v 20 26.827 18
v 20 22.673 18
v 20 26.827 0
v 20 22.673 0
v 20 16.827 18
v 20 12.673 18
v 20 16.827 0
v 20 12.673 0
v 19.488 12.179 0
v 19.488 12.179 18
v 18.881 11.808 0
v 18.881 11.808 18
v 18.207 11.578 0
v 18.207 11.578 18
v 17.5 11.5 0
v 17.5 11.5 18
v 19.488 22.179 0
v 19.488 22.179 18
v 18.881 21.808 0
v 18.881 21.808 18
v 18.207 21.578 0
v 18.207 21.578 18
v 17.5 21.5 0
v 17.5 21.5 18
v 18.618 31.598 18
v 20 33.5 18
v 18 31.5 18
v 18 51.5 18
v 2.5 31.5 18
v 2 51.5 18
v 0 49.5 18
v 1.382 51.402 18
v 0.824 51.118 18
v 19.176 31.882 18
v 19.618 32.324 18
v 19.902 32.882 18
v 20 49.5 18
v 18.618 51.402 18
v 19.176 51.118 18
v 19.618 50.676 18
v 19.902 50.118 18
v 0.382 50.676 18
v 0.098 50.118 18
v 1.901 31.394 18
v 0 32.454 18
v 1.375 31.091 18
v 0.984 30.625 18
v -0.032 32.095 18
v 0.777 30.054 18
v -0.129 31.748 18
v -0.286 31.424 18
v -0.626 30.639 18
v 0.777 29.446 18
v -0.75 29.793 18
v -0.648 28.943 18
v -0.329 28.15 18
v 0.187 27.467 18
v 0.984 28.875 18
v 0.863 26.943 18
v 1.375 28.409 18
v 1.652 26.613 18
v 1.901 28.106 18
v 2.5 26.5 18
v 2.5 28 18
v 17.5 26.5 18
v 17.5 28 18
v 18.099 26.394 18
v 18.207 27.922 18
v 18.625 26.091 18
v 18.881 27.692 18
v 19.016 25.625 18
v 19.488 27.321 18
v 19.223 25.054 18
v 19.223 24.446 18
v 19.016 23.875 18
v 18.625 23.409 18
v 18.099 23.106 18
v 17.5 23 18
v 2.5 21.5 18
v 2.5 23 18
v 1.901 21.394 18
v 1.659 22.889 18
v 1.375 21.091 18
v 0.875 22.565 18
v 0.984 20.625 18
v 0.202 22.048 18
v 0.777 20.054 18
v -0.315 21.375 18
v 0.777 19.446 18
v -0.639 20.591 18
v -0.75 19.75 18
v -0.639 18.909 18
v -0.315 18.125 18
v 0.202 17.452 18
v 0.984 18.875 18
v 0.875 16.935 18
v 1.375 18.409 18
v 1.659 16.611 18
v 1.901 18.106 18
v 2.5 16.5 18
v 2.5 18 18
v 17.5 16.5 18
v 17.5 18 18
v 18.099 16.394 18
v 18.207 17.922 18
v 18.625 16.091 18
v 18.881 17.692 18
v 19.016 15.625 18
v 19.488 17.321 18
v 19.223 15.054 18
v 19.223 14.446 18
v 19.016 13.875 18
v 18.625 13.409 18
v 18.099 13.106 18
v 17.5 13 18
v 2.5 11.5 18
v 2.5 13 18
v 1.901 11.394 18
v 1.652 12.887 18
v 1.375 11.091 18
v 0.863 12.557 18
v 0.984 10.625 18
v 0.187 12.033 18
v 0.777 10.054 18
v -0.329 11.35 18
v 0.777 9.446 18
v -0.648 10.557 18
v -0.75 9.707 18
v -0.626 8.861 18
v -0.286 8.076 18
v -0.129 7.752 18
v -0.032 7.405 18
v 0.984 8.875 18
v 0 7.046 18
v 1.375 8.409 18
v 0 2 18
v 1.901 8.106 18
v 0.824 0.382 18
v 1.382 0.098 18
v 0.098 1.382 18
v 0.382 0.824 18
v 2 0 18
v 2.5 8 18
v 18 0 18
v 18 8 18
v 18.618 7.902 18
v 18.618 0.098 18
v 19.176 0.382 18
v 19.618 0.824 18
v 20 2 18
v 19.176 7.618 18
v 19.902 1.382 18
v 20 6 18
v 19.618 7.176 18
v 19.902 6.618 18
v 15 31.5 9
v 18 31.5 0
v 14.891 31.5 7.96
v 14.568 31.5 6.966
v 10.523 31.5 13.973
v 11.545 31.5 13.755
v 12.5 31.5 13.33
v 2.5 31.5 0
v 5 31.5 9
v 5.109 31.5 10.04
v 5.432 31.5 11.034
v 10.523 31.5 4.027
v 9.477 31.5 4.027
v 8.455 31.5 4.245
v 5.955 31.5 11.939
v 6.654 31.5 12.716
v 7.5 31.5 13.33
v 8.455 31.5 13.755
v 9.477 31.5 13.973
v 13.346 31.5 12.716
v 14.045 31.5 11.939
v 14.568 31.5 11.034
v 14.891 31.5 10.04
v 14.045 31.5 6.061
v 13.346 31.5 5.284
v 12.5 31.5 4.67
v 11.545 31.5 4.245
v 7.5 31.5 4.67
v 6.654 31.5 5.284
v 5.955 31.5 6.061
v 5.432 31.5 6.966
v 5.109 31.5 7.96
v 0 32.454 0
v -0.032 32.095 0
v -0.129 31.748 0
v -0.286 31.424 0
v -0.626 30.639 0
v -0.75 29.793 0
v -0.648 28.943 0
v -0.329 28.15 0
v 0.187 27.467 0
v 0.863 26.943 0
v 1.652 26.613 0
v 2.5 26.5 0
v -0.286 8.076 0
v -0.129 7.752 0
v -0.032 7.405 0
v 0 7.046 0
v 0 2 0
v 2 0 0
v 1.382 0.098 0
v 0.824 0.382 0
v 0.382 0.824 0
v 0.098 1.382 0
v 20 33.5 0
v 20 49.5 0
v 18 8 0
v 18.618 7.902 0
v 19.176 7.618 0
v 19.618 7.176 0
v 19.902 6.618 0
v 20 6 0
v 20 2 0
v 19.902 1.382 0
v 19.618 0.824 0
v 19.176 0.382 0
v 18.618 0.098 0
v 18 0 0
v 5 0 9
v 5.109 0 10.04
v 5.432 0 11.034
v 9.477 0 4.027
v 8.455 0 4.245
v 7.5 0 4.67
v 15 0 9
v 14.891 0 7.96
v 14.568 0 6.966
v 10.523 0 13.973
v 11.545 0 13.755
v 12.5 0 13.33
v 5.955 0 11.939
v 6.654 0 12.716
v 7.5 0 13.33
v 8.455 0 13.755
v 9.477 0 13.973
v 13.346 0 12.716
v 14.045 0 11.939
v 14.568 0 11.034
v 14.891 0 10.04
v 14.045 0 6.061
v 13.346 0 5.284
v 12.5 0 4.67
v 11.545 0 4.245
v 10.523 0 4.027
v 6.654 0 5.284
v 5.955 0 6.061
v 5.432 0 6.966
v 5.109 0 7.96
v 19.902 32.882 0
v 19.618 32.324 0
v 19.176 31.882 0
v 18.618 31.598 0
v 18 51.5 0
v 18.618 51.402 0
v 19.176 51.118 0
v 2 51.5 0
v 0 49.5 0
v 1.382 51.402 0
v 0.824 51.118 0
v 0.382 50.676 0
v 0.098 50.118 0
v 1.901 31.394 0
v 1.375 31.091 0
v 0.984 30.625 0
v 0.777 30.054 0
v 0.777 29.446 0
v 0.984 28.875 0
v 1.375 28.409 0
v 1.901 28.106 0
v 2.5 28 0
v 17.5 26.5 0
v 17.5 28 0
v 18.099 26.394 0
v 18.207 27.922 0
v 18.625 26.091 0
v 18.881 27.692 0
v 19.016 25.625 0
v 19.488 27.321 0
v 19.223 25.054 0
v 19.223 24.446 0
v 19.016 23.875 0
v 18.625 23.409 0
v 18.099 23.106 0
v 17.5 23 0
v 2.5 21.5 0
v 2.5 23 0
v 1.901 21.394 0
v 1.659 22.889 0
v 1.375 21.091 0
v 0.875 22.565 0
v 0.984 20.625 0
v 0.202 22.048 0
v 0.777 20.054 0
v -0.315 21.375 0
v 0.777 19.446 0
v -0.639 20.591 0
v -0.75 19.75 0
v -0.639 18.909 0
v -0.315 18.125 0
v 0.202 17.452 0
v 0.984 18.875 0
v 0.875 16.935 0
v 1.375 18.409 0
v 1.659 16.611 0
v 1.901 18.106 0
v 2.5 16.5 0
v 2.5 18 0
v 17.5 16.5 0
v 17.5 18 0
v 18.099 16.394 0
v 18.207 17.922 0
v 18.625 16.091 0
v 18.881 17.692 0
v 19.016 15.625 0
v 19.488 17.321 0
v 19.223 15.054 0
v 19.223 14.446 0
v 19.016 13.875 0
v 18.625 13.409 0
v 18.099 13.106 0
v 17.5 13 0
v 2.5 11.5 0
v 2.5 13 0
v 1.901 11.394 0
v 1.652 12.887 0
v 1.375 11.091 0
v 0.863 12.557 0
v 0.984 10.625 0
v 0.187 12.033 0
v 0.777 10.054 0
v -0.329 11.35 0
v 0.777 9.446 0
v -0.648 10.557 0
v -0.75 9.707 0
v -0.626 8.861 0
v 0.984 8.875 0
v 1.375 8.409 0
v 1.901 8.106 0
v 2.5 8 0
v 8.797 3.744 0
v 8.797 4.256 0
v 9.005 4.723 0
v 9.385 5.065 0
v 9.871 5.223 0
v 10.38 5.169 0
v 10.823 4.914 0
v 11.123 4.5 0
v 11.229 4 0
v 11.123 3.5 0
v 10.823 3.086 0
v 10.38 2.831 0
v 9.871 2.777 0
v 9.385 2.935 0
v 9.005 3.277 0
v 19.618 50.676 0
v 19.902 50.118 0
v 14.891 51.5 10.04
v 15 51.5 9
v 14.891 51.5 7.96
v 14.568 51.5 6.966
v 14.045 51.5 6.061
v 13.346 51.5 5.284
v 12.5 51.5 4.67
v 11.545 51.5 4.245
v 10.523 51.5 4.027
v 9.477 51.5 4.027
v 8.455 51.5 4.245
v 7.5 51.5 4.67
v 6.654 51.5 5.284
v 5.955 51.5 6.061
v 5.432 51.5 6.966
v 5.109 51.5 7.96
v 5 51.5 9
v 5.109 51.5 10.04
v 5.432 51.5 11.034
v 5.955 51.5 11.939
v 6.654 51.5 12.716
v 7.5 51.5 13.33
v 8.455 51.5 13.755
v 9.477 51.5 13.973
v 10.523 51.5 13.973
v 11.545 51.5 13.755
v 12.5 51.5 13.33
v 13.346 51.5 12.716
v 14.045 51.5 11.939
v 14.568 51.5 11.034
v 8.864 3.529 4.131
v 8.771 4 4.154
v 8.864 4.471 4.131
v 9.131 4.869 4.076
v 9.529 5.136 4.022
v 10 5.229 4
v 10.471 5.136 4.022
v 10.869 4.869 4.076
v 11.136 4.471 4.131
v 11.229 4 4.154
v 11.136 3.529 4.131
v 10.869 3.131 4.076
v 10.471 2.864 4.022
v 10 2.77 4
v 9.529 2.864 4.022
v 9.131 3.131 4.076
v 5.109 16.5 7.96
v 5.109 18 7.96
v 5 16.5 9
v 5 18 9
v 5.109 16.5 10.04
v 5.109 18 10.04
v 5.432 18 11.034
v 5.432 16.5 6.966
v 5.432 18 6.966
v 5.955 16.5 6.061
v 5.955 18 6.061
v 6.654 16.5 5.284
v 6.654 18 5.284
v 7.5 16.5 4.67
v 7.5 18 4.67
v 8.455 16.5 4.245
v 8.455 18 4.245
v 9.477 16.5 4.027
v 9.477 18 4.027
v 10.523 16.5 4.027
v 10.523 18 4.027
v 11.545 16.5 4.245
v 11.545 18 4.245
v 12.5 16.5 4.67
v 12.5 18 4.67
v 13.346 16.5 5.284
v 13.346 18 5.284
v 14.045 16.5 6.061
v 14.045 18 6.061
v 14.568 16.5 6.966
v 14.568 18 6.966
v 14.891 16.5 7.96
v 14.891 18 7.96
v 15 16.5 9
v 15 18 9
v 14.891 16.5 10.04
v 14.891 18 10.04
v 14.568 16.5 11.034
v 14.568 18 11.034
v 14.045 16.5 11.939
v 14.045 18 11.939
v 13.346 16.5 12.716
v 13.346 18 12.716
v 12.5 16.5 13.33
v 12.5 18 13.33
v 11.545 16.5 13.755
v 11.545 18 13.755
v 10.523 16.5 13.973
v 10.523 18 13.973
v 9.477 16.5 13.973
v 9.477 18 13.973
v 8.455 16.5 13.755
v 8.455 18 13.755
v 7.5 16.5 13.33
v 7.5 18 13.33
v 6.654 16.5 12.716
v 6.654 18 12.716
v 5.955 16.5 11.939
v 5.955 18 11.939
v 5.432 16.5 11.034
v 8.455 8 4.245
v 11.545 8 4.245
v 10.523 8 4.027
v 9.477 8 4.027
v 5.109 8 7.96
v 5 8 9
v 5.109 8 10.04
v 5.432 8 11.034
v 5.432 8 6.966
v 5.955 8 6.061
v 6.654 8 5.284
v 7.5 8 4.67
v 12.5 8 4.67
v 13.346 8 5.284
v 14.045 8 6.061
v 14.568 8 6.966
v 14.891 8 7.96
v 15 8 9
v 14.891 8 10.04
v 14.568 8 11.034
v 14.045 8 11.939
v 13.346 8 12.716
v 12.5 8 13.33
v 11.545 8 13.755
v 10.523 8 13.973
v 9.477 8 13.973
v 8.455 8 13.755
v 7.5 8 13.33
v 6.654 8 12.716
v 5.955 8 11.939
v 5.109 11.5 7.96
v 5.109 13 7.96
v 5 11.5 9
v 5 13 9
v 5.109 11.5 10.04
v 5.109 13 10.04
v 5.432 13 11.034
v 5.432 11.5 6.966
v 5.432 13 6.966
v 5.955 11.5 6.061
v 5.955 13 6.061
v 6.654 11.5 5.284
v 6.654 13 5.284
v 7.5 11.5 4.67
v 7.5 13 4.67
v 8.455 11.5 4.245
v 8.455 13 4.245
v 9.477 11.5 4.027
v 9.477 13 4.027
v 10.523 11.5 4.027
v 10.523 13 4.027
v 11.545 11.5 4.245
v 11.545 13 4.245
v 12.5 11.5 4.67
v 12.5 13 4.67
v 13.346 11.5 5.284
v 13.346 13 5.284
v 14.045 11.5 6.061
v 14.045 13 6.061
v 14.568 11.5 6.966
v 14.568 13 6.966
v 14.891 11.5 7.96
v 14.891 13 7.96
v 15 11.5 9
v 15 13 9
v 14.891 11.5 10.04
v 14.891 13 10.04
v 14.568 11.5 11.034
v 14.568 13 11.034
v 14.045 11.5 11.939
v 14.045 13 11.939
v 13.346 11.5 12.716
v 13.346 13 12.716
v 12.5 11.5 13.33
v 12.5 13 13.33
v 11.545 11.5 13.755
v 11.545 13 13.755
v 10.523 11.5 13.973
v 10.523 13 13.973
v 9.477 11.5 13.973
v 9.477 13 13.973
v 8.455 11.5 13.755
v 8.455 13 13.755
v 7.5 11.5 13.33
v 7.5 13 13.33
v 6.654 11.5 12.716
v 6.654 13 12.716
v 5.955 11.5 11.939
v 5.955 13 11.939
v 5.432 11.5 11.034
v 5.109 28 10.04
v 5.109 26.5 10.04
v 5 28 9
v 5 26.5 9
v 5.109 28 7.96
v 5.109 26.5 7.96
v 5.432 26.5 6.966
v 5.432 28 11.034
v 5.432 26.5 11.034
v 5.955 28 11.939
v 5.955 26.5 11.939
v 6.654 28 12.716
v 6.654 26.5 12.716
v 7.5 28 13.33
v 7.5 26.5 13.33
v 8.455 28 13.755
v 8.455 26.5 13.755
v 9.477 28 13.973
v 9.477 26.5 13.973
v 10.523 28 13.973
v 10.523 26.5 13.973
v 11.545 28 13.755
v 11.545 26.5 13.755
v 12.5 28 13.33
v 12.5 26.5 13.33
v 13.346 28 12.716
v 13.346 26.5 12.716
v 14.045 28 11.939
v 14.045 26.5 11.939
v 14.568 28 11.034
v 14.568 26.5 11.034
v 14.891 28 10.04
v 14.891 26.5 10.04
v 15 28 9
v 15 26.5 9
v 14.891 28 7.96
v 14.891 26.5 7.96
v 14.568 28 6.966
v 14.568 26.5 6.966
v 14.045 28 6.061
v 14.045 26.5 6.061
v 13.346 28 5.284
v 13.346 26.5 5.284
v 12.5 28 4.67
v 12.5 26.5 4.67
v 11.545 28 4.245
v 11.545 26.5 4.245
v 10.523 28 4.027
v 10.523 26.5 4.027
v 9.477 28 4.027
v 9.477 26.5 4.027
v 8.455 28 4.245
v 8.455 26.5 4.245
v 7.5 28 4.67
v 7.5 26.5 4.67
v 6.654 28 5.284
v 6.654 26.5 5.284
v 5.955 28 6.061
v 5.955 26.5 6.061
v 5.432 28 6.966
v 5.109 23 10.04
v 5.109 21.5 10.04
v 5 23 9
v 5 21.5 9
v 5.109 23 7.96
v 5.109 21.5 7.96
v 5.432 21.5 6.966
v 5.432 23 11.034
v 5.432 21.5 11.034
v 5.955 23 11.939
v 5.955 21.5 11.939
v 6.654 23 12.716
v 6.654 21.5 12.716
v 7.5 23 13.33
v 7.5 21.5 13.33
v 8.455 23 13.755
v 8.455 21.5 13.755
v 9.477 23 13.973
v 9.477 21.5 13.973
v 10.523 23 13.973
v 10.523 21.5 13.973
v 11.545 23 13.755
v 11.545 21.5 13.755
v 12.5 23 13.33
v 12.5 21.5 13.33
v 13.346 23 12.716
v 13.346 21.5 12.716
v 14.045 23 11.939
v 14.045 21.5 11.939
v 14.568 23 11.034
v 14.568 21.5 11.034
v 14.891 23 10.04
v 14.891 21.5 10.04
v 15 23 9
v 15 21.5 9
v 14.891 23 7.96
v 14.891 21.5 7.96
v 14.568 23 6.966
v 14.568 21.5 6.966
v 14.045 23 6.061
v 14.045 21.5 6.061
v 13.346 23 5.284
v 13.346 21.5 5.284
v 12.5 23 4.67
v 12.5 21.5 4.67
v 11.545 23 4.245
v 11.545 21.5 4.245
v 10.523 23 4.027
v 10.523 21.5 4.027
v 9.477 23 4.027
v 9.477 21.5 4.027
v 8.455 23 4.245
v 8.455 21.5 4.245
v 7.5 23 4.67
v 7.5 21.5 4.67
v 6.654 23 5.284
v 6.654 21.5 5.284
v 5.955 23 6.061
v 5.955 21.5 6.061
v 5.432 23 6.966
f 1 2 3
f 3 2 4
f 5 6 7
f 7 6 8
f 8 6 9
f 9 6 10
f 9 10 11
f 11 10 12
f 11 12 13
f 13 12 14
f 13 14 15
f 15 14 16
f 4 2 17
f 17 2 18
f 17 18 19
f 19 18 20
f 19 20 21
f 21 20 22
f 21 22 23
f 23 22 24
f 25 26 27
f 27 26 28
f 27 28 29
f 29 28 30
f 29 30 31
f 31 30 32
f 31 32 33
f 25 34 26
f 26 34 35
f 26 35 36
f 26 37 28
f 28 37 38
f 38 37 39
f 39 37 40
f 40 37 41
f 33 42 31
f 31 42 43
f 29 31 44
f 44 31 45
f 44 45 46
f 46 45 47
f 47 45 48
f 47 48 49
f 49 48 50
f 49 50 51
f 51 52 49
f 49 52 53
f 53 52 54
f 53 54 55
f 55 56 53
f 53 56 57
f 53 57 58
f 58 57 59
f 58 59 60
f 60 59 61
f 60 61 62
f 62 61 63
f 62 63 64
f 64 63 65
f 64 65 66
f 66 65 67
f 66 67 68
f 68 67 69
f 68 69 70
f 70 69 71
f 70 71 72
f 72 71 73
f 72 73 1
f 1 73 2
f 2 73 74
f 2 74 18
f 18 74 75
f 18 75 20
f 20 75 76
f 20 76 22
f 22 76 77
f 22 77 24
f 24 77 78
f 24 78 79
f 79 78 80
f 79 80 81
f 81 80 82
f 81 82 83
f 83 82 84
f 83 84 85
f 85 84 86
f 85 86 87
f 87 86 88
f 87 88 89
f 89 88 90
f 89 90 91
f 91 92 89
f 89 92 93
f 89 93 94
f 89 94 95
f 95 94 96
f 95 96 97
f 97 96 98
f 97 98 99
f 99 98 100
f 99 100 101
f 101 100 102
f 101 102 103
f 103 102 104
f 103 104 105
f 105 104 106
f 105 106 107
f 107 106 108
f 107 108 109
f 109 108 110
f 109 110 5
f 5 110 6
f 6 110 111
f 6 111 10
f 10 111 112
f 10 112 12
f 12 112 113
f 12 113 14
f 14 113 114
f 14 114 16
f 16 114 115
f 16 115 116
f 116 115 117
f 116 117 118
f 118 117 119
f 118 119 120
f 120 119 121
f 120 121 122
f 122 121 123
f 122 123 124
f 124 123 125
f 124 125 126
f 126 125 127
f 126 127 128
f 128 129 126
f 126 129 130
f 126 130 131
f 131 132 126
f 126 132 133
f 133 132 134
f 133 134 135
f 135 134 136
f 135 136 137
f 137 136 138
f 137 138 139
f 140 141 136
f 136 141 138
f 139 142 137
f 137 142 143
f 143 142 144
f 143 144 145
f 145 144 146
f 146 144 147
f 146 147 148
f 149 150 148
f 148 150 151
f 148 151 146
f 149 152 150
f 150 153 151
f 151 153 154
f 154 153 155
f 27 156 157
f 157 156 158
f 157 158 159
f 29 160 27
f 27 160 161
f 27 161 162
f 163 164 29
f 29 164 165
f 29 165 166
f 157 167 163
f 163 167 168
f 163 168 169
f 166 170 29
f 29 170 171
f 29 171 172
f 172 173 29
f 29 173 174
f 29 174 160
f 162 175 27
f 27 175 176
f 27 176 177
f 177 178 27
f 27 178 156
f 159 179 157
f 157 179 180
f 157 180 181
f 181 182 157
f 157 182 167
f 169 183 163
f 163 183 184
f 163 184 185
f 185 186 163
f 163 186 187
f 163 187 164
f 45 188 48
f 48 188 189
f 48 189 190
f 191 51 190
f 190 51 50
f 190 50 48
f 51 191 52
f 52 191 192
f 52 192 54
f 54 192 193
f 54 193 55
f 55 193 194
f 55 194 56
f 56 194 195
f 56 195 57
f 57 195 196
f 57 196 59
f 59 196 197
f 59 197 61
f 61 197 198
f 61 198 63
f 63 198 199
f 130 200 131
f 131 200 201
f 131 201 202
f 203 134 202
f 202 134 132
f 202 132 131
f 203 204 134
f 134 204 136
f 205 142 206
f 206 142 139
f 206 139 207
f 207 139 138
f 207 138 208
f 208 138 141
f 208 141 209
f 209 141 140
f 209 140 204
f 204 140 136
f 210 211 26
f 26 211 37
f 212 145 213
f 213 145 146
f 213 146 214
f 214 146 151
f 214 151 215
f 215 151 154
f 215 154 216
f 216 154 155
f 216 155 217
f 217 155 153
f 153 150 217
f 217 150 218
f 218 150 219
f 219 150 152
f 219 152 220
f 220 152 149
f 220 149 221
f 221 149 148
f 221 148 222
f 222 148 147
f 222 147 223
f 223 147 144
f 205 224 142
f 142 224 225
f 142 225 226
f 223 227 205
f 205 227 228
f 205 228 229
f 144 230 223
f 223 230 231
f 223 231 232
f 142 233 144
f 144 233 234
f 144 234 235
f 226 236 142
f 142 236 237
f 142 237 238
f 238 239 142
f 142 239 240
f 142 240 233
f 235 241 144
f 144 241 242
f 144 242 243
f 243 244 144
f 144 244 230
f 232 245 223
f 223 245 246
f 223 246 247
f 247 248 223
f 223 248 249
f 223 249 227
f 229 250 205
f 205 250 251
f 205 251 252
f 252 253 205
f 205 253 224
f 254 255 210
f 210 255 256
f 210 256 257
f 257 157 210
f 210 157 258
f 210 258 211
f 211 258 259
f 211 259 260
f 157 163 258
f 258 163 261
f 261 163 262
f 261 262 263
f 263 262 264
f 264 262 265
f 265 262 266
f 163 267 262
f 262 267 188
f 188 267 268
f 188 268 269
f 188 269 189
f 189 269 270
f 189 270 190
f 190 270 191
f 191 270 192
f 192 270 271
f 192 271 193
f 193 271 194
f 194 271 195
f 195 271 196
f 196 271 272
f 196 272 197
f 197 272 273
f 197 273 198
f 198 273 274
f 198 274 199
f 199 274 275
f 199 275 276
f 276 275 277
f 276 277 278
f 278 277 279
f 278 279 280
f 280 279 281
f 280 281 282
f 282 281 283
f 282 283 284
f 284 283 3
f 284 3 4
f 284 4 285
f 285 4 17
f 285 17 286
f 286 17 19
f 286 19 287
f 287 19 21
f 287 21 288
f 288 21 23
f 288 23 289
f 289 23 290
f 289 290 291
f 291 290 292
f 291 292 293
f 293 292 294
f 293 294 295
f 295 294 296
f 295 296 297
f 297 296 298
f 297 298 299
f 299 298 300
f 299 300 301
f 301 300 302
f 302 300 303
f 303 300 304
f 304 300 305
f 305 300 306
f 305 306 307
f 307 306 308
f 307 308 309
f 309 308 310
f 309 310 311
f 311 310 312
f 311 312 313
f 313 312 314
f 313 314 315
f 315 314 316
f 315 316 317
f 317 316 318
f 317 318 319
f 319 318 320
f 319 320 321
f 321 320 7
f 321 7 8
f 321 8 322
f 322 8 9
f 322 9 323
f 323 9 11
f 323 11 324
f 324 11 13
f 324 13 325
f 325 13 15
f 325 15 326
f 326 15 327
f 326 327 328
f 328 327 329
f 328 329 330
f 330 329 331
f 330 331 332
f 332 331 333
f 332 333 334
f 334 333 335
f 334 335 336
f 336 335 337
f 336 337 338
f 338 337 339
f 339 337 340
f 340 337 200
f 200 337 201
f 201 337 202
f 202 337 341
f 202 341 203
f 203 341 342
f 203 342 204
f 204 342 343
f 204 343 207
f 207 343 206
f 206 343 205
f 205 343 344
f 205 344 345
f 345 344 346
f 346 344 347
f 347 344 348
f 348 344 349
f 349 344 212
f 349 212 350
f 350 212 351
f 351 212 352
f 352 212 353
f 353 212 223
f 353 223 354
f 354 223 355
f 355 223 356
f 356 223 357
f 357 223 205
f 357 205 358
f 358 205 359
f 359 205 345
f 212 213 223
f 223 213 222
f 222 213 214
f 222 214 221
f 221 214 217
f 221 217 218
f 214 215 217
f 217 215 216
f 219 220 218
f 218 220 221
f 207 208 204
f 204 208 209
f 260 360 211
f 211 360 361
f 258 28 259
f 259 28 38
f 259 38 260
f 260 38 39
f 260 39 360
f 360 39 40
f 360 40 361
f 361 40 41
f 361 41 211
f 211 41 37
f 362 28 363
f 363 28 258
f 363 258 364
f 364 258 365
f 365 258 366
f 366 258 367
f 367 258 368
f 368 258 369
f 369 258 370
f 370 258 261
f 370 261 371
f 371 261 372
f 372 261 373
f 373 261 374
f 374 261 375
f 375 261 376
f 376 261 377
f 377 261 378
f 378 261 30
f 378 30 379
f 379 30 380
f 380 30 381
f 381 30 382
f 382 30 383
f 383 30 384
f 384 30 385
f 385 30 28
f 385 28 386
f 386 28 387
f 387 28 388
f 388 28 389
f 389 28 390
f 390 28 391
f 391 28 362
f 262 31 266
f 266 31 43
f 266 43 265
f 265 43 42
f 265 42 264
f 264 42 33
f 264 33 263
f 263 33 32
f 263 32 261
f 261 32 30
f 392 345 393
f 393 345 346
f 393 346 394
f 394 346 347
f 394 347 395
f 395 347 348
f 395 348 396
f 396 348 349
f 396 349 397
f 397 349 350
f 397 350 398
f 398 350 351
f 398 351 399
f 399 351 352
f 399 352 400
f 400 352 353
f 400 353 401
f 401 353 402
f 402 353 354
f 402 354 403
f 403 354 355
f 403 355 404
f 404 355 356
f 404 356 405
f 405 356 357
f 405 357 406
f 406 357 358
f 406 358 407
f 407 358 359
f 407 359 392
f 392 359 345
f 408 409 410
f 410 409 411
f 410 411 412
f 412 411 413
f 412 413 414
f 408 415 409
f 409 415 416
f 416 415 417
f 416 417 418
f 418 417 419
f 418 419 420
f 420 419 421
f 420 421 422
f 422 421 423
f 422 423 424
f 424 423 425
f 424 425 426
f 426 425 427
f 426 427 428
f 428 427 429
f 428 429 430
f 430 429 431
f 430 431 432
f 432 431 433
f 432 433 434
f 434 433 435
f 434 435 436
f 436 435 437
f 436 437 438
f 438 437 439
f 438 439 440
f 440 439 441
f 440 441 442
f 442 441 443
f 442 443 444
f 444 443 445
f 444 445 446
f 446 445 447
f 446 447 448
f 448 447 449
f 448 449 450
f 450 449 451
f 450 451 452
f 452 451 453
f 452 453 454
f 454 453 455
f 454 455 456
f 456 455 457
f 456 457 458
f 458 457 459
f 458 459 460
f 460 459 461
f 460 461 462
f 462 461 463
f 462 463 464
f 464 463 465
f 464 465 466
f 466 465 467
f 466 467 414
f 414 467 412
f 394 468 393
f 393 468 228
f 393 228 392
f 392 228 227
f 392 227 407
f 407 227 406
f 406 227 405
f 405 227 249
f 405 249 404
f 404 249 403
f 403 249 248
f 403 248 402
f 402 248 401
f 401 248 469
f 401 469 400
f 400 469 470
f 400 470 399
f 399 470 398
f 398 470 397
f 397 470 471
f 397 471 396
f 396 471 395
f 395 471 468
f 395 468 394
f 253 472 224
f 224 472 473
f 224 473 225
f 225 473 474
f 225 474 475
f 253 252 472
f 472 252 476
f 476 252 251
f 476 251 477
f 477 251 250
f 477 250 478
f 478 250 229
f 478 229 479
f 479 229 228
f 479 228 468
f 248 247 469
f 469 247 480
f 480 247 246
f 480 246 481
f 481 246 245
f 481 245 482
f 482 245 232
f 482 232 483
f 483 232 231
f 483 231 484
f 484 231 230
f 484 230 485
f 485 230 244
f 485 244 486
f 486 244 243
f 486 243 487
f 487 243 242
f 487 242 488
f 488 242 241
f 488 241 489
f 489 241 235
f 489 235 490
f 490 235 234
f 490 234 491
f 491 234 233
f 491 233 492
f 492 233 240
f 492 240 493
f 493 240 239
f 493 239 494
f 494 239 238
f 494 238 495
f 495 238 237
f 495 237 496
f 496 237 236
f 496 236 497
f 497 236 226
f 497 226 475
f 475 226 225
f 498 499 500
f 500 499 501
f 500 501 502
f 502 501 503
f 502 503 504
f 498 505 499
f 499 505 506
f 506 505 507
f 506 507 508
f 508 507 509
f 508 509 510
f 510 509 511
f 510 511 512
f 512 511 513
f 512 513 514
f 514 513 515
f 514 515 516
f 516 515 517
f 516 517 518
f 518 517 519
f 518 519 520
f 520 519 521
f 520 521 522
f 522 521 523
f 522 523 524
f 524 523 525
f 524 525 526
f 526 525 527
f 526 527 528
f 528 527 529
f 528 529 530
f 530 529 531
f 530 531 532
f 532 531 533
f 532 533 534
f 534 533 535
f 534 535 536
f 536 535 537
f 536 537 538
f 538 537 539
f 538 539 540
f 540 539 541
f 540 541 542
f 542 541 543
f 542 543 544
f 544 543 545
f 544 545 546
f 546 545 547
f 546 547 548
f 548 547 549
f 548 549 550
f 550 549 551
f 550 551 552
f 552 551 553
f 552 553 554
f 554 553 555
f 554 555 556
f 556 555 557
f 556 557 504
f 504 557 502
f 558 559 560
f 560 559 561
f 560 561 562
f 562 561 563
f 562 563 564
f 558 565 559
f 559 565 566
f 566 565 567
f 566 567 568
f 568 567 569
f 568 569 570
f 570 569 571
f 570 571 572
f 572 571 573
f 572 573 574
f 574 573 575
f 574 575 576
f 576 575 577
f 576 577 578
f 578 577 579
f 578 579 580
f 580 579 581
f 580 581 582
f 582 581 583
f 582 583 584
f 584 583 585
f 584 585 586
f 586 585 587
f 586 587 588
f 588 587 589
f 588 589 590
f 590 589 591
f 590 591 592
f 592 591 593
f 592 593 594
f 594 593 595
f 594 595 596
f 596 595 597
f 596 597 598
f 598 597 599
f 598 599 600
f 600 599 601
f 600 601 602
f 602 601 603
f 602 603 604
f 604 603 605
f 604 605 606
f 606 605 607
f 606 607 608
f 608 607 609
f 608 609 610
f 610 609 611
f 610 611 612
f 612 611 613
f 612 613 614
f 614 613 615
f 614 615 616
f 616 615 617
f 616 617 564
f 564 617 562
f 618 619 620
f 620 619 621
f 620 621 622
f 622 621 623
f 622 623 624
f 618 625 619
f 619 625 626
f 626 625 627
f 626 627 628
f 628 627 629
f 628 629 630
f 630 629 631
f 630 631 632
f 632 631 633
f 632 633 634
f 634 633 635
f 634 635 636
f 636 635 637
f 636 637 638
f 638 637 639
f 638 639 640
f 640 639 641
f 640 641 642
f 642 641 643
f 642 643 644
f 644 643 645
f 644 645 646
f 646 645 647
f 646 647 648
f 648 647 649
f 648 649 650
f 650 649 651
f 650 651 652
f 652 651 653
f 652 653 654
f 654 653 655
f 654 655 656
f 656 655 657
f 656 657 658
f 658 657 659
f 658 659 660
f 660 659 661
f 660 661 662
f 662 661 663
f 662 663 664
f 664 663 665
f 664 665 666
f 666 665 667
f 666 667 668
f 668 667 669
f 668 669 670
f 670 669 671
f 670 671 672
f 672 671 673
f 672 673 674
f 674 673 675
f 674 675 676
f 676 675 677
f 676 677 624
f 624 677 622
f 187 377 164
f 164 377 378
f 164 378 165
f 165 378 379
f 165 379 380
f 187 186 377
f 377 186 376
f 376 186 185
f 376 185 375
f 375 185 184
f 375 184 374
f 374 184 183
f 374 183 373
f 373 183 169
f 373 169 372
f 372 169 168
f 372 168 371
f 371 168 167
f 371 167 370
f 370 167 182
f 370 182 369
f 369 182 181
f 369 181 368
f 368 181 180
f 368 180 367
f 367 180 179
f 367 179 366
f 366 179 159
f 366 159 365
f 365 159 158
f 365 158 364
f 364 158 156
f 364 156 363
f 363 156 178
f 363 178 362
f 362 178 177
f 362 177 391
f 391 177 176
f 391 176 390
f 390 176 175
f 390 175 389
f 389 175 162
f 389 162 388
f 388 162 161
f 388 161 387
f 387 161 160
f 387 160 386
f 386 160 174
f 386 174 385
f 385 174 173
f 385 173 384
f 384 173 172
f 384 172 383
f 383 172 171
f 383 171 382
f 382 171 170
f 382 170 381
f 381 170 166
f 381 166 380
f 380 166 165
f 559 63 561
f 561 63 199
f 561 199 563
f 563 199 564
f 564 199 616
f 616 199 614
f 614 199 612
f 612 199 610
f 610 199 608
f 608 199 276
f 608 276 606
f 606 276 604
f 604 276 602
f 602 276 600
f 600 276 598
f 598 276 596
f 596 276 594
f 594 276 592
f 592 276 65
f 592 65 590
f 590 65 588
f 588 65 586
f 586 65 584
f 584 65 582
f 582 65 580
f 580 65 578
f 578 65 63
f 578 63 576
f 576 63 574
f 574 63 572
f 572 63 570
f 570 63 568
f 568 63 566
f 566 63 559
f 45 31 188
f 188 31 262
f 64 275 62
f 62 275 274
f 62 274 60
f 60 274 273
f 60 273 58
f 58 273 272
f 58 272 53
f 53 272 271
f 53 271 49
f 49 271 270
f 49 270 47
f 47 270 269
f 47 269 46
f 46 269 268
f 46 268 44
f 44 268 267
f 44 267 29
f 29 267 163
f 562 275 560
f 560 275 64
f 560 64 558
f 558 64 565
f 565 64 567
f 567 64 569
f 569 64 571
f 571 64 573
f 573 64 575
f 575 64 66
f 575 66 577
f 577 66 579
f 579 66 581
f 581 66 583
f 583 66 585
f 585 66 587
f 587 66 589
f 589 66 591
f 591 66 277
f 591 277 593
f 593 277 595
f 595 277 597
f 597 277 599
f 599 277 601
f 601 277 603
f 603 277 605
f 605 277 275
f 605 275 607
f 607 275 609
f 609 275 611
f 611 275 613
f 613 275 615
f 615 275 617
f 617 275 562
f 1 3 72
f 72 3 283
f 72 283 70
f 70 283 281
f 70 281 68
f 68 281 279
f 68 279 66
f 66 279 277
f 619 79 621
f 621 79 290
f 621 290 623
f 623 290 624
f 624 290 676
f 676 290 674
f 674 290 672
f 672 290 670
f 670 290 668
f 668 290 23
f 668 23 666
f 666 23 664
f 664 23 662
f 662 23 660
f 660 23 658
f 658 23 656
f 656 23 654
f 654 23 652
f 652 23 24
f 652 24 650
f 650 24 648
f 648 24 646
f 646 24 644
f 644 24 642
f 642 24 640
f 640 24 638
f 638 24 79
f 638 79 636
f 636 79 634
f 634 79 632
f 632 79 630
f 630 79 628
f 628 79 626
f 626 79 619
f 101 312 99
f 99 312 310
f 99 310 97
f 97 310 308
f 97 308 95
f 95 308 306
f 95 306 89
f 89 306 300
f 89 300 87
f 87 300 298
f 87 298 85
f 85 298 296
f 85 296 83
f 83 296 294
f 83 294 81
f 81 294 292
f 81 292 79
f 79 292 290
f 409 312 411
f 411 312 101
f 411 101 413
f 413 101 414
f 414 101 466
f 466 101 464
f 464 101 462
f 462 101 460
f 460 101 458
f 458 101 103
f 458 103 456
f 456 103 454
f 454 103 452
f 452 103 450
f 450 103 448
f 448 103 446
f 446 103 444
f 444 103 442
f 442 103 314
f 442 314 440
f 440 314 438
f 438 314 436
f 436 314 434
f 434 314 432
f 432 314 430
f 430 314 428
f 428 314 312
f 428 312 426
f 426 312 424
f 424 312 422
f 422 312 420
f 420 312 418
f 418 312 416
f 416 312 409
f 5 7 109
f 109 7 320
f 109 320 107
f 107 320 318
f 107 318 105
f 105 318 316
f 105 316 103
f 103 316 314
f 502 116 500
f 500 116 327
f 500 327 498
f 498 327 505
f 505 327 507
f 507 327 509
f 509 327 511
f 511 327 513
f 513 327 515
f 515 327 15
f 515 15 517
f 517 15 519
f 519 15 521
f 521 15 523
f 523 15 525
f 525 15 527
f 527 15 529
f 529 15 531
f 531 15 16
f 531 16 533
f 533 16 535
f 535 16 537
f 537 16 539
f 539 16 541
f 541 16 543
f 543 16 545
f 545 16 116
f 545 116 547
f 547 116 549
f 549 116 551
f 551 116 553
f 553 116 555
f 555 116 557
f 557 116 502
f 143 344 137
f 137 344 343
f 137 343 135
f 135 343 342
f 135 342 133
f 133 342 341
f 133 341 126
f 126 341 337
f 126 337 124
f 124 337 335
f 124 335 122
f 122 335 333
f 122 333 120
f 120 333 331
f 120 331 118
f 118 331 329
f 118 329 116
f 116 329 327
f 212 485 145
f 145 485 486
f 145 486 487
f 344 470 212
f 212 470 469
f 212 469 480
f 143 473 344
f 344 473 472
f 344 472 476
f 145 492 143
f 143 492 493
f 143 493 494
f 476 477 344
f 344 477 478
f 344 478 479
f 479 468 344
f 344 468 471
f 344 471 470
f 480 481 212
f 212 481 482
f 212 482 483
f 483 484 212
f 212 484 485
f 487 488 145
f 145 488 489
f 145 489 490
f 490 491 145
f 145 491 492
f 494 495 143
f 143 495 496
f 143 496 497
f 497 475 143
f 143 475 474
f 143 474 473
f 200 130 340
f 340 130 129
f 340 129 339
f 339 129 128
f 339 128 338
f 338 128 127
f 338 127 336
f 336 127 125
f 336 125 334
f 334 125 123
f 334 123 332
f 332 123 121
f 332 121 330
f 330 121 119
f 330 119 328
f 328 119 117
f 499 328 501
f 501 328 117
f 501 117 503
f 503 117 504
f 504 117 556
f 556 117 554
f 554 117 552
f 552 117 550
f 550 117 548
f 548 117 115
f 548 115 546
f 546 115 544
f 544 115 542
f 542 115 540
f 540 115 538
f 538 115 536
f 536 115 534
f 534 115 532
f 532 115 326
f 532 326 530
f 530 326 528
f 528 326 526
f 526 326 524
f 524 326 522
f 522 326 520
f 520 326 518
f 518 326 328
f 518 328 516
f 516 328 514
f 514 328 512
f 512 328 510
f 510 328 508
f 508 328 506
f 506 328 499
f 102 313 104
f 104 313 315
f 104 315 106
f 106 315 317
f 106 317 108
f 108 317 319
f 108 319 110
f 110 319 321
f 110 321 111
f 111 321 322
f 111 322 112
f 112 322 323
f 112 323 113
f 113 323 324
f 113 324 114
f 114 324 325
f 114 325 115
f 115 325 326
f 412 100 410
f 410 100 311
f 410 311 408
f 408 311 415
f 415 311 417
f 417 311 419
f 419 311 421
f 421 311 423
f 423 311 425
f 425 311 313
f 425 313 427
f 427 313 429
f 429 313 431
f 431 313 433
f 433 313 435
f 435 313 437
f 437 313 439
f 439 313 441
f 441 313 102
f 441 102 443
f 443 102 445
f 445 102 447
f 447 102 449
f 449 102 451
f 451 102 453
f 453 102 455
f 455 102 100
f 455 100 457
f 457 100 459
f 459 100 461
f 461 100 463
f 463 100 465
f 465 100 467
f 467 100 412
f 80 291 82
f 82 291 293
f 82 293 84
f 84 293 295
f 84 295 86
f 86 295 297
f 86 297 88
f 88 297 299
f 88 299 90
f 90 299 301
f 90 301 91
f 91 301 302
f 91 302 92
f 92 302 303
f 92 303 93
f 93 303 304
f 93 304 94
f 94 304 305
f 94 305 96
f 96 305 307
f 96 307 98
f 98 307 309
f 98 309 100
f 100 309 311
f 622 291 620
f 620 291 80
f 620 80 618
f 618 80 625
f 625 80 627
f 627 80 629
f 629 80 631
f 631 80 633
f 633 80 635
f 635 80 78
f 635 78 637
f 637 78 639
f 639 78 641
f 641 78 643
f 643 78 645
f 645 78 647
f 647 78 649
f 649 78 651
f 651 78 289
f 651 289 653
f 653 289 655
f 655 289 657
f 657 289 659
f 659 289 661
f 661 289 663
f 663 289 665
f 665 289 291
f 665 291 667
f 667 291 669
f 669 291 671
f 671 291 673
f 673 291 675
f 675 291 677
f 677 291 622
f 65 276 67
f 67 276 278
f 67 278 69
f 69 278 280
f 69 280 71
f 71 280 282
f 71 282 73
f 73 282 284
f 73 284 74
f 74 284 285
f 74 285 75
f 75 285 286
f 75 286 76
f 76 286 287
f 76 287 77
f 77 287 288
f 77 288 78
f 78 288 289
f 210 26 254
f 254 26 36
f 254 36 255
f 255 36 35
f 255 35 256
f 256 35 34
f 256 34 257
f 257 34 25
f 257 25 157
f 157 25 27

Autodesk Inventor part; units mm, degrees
ref_plane "YZ Plane" through (0, 0, 0) normal (1, 0, 0) x (0, 1, 0)
ref_plane "XZ Plane" through (0, 0, 0) normal (0, 1, 0) x (-1, 0, 0)
ref_plane "XY Plane" through (0, 0, 0) normal (0, 0, 1) x (1, 0, 0)
sketch "Skizze3" plane through (0, 0, 0) normal (0, 0, 1) x (1, 0, 0)
  line L0 (0, 0) -> (0, 8)
  line L1 (0, 8) -> (20, 8)
  line L2 (20, 0) -> (0, 0)
  arc A0 (2.5, 22.25) -> (2.5, 17.25) centre (2.5, 19.75) ccw construction
  arc A1 (17.5, 12.25) -> (17.5, 17.25) centre (17.5, 14.75) ccw construction
  line L3 (17.5, 17.25) -> (2.5, 17.25) construction
  line L4 (2.5, 22.25) -> (17.5, 22.25) construction
  arc A2 (17.5, 22.25) -> (17.5, 27.25) centre (17.5, 24.75) ccw construction
  arc A3 (4.4592, 31.3029) -> (2.5, 27.25) centre (2.5, 29.75) ccw construction
  line L5 (17.5, 27.25) -> (2.5, 27.25) construction
  line L6 (2.5, 12.25) -> (17.5, 12.25) construction
  arc A4 (2.5, 12.25) -> (0.7146, 8) centre (2.5, 9.75) ccw construction
  line L7 (0, 31.5) -> (0, 51.5)
  line L8 (0, 51.5) -> (20, 51.5)
  arc A5 (0, 31.8267) -> (2.5, 26.5) centre (2.5, 29.75) ccw
  line L9 (2.5, 26.5) -> (17.5, 26.5)
  arc A6 (17.5, 23) -> (17.5, 26.5) centre (17.5, 24.75) ccw
  line L10 (17.5, 23) -> (2.5, 23)
  arc A7 (2.5, 23) -> (2.5, 16.5) centre (2.5, 19.75) ccw
  line L11 (2.5, 16.5) -> (17.5, 16.5)
  arc A8 (17.5, 13) -> (17.5, 16.5) centre (17.5, 14.75) ccw
  line L12 (17.5, 13) -> (2.5, 13)
  arc A9 (2.5, 13) -> (0, 7.6733) centre (2.5, 9.75) ccw
  arc A10 (2.5, 31.5) -> (2.5, 28) centre (2.5, 29.75) ccw
  line L13 (2.5, 28) -> (17.5, 28)
  arc A11 (17.5, 21.5) -> (17.5, 28) centre (17.5, 24.75) ccw
  line L14 (17.5, 21.5) -> (2.5, 21.5)
  arc A12 (2.5, 21.5) -> (2.5, 18) centre (2.5, 19.75) ccw
  line L15 (2.5, 18) -> (17.5, 18)
  arc A13 (17.5, 11.5) -> (17.5, 18) centre (17.5, 14.75) ccw
  line L16 (17.5, 11.5) -> (2.5, 11.5)
  arc A14 (2.5, 11.5) -> (2.5, 8) centre (2.5, 9.75) ccw
  line L17 (0, 31.5) -> (20, 31.5)
  line L18 (20, 31.5) -> (20, 31.5)
  line L19 (20, 31.5) -> (20, 41.5)
  line L20 (20, 51.5) -> (20, 41.5)
  line L21 (20, 31.5) -> (45, 31.5)
  line L22 (45, 31.5) -> (45, 41.5)
  line L23 (45, 41.5) -> (20, 41.5)
  line L24 (20, 0) -> (20, 8)
  point P0 (10, 4)
  point P1 (0, 4)
  point P2 (10, 0)
  dimension "d4" = 8
  dimension "d11" = 5
  dimension "d12" = 5
  dimension "d13" = 5
  dimension "d14" = 5
  dimension "d17" = 5
  dimension "d19" = 0.75
  dimension "d20" = 0.75
  dimension "d22" = 20
  dimension "d23" = 20
  dimension "d24" = 10
  dimension "d29" = 25
  dimension "d54" = 20
extrude "Extrusion3" add sketch "Skizze3" along normal blind 18
sketch "Skizze4" plane through (20, 31.5, 0) normal (0, 1, 0) x (1, 0, 0)
  circle A0 centre (16, -9) radius 2
  line L0 (25, 0) -> (25, -18) projected
  line L1 (25, -18) -> (0, -18) projected
  line L2 (25, 0) -> (0, 0) projected
  circle A1 centre (6, -9) radius 2.5
  line L3 (0, 0) -> (0, -18) projected
  arc A2 (16, -18) -> (16, 0) centre (16, -9) ccw
  line L4 (0, -18) -> (25, -18) projected
  arc A3 (16, 0) -> (16, -18) centre (16, -9) ccw construction
  circle A4 centre (6, -9) radius 5.25
  point P0 (25, -9)
  point P1 (25, -9)
  point P2 (21, -1.5167)
  dimension "d31" = 4
  dimension "d36" = 5
  dimension "d37" = 6
  dimension "d38" = 10
  dimension "d57" = 10.5
sketch "Skizze6" plane through (0, 51.5, 0) normal (0, 1, 0) x (1, 0, 0)
  circle A0 centre (10, -9) radius 5
  line L0 (20, -18) -> (0, -18) projected
  line L1 (0, 0) -> (0, -18) projected
  point P0 (10, -18)
  point P1 (0, -9)
  dimension "d51" = 10
extrude "Extrusion9" cut sketch "Skizze6" against normal through all
extrude "Extrusion6" cut sketch "Skizze4" along normal blind 18 contours L0 A2 L2 | L0 L1 A2 | A1
extrude "Extrusion7" add sketch "Skizze4" against normal blind 10 contours A0
hole "Bohrung1" at (10, 4, 0) direction (0, 0, 1) diameter 2.459 end up to surface thread size "M3x0.5" class "6H" standard "ISO Metric profile"
fillet "Rundung3" radius 2 8 edges at (0, 51.5, 9) (20, 51.5, 9) (20, 41.5, 9) (20, 0, 9) (20, 8, 9) (0, 0, 9) (0, 7.6733, 9) (0, 31.8267, 9)
sketch "Skizze7" plane through (0, 0, 18) normal (0, 0, 1) x (1, 0, 0)
  line L0 (20, 43.5) -> (20, 49.5) projected
  line L1 (20, 43.5) -> (50, 43.5)
  line L2 (50, 43.5) -> (50, 0)
  line L3 (50, 0) -> (20, 0)
  line L4 (20, 0) -> (20, 43.5)
  line L5 (2, 0) -> (18, 0) projected
  point P0 (0, 0)
  point P1 (35, 0)
  dimension "d68" = 30
extrude "Extrusion11" cut sketch "Skizze7" against normal through all
fillet "Rundung4" radius 2 1 edges at (20, 31.5, 9)
equation "\"d12\" = d11"
properties part number "BT505_trajan20_22"
